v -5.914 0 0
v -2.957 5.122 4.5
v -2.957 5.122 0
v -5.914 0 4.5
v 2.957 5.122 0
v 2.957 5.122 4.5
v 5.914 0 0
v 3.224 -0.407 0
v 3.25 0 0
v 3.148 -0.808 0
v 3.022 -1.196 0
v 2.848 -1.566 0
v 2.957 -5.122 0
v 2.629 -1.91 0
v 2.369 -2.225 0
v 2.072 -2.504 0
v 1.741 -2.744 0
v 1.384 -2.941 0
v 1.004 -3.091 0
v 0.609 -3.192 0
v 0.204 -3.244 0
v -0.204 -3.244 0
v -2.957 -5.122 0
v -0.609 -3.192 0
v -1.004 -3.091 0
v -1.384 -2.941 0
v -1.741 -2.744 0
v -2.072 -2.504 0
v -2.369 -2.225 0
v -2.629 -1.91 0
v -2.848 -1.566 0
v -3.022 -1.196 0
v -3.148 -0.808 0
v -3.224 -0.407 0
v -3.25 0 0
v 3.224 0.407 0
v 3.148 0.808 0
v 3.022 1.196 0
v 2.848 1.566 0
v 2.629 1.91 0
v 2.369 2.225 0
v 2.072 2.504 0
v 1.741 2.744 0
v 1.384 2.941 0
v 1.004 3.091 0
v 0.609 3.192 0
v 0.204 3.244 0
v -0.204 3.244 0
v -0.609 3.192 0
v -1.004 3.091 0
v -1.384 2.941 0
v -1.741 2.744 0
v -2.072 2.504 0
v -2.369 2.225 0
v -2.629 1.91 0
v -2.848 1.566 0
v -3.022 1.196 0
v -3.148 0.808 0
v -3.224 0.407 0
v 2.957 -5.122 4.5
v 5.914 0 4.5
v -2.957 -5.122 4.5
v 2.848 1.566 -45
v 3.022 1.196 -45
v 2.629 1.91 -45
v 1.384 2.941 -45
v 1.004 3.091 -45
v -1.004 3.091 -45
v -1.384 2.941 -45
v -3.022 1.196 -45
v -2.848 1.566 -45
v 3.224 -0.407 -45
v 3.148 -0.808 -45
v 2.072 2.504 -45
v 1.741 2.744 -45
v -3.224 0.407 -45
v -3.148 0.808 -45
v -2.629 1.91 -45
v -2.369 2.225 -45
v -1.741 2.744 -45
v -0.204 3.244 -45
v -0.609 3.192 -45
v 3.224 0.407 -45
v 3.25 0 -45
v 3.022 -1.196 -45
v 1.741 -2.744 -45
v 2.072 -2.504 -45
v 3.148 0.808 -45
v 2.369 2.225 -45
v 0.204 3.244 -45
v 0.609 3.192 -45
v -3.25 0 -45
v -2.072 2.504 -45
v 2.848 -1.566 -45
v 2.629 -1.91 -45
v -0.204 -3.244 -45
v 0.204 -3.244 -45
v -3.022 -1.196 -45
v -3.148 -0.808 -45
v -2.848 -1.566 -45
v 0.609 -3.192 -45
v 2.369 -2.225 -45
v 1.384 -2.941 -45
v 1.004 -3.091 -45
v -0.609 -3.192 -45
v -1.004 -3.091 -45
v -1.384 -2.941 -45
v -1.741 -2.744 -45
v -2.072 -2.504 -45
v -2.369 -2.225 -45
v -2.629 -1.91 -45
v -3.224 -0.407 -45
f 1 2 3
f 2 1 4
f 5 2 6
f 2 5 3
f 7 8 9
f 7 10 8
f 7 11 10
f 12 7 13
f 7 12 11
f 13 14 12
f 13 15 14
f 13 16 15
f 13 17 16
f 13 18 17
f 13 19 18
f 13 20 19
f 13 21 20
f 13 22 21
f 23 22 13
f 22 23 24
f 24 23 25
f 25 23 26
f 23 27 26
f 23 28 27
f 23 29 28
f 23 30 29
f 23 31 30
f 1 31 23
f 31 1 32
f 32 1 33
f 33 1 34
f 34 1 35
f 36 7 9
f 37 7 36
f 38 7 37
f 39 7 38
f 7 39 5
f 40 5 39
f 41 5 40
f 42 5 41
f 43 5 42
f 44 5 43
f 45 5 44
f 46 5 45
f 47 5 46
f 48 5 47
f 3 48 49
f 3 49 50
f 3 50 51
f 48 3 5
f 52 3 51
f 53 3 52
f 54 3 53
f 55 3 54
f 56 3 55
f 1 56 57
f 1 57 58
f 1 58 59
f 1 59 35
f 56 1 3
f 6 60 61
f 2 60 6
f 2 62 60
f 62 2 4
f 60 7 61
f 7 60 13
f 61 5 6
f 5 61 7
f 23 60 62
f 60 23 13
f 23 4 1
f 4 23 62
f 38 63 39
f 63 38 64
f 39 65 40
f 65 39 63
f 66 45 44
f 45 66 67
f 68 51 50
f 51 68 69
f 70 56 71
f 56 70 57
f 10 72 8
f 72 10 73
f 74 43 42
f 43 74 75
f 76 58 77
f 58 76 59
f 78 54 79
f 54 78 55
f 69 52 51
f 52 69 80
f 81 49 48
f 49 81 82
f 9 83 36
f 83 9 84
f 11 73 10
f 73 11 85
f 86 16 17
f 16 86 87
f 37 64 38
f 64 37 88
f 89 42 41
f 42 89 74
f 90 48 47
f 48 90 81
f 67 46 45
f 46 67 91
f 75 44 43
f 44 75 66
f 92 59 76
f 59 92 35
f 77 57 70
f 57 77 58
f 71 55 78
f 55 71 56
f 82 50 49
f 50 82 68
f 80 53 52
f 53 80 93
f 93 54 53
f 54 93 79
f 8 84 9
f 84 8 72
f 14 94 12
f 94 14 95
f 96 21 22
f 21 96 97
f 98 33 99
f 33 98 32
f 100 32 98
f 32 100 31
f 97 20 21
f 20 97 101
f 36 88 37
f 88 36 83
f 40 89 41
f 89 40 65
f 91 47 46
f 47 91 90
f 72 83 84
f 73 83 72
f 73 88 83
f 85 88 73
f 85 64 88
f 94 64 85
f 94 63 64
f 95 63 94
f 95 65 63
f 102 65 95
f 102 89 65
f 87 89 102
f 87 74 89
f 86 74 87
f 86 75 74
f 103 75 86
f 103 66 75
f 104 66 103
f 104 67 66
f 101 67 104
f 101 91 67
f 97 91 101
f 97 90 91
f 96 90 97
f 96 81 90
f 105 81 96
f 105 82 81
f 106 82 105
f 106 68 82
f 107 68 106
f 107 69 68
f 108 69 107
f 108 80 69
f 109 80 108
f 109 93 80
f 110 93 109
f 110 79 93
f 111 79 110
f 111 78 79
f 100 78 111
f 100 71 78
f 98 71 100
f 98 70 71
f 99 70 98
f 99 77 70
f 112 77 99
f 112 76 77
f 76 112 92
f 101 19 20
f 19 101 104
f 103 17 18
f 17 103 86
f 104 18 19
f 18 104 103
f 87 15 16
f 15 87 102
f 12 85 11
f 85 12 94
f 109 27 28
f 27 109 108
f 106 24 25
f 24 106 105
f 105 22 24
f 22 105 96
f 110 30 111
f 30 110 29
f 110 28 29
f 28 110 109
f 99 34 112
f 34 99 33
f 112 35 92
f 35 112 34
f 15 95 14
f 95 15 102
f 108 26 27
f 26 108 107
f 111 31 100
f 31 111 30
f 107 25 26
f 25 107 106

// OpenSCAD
$fn = 50;


difference() {
	union() {
		translate(v = [0, 0, 0]) {
			rotate(a = [0, 0, 0]) {
				translate(v = [0, 0, 0]) {
					rotate(a = [0, 0, 0]) {
						linear_extrude(height = 4.5000000000) {
							polygon(points = [[5.9142500000, 0.0000000000], [2.9571250000, 5.1218907443], [-2.9571250000, 5.1218907443], [-5.9142500000, 0.0000000000], [-2.9571250000, -5.1218907443], [2.9571250000, -5.1218907443]]);
						}
					}
				}
			}
		}
		translate(v = [0, 0, -45]) {
			rotate(a = [0, 0, 0]) {
				cylinder(h = 45, r = 3.2500000000);
			}
		}
	}
	union();
}
